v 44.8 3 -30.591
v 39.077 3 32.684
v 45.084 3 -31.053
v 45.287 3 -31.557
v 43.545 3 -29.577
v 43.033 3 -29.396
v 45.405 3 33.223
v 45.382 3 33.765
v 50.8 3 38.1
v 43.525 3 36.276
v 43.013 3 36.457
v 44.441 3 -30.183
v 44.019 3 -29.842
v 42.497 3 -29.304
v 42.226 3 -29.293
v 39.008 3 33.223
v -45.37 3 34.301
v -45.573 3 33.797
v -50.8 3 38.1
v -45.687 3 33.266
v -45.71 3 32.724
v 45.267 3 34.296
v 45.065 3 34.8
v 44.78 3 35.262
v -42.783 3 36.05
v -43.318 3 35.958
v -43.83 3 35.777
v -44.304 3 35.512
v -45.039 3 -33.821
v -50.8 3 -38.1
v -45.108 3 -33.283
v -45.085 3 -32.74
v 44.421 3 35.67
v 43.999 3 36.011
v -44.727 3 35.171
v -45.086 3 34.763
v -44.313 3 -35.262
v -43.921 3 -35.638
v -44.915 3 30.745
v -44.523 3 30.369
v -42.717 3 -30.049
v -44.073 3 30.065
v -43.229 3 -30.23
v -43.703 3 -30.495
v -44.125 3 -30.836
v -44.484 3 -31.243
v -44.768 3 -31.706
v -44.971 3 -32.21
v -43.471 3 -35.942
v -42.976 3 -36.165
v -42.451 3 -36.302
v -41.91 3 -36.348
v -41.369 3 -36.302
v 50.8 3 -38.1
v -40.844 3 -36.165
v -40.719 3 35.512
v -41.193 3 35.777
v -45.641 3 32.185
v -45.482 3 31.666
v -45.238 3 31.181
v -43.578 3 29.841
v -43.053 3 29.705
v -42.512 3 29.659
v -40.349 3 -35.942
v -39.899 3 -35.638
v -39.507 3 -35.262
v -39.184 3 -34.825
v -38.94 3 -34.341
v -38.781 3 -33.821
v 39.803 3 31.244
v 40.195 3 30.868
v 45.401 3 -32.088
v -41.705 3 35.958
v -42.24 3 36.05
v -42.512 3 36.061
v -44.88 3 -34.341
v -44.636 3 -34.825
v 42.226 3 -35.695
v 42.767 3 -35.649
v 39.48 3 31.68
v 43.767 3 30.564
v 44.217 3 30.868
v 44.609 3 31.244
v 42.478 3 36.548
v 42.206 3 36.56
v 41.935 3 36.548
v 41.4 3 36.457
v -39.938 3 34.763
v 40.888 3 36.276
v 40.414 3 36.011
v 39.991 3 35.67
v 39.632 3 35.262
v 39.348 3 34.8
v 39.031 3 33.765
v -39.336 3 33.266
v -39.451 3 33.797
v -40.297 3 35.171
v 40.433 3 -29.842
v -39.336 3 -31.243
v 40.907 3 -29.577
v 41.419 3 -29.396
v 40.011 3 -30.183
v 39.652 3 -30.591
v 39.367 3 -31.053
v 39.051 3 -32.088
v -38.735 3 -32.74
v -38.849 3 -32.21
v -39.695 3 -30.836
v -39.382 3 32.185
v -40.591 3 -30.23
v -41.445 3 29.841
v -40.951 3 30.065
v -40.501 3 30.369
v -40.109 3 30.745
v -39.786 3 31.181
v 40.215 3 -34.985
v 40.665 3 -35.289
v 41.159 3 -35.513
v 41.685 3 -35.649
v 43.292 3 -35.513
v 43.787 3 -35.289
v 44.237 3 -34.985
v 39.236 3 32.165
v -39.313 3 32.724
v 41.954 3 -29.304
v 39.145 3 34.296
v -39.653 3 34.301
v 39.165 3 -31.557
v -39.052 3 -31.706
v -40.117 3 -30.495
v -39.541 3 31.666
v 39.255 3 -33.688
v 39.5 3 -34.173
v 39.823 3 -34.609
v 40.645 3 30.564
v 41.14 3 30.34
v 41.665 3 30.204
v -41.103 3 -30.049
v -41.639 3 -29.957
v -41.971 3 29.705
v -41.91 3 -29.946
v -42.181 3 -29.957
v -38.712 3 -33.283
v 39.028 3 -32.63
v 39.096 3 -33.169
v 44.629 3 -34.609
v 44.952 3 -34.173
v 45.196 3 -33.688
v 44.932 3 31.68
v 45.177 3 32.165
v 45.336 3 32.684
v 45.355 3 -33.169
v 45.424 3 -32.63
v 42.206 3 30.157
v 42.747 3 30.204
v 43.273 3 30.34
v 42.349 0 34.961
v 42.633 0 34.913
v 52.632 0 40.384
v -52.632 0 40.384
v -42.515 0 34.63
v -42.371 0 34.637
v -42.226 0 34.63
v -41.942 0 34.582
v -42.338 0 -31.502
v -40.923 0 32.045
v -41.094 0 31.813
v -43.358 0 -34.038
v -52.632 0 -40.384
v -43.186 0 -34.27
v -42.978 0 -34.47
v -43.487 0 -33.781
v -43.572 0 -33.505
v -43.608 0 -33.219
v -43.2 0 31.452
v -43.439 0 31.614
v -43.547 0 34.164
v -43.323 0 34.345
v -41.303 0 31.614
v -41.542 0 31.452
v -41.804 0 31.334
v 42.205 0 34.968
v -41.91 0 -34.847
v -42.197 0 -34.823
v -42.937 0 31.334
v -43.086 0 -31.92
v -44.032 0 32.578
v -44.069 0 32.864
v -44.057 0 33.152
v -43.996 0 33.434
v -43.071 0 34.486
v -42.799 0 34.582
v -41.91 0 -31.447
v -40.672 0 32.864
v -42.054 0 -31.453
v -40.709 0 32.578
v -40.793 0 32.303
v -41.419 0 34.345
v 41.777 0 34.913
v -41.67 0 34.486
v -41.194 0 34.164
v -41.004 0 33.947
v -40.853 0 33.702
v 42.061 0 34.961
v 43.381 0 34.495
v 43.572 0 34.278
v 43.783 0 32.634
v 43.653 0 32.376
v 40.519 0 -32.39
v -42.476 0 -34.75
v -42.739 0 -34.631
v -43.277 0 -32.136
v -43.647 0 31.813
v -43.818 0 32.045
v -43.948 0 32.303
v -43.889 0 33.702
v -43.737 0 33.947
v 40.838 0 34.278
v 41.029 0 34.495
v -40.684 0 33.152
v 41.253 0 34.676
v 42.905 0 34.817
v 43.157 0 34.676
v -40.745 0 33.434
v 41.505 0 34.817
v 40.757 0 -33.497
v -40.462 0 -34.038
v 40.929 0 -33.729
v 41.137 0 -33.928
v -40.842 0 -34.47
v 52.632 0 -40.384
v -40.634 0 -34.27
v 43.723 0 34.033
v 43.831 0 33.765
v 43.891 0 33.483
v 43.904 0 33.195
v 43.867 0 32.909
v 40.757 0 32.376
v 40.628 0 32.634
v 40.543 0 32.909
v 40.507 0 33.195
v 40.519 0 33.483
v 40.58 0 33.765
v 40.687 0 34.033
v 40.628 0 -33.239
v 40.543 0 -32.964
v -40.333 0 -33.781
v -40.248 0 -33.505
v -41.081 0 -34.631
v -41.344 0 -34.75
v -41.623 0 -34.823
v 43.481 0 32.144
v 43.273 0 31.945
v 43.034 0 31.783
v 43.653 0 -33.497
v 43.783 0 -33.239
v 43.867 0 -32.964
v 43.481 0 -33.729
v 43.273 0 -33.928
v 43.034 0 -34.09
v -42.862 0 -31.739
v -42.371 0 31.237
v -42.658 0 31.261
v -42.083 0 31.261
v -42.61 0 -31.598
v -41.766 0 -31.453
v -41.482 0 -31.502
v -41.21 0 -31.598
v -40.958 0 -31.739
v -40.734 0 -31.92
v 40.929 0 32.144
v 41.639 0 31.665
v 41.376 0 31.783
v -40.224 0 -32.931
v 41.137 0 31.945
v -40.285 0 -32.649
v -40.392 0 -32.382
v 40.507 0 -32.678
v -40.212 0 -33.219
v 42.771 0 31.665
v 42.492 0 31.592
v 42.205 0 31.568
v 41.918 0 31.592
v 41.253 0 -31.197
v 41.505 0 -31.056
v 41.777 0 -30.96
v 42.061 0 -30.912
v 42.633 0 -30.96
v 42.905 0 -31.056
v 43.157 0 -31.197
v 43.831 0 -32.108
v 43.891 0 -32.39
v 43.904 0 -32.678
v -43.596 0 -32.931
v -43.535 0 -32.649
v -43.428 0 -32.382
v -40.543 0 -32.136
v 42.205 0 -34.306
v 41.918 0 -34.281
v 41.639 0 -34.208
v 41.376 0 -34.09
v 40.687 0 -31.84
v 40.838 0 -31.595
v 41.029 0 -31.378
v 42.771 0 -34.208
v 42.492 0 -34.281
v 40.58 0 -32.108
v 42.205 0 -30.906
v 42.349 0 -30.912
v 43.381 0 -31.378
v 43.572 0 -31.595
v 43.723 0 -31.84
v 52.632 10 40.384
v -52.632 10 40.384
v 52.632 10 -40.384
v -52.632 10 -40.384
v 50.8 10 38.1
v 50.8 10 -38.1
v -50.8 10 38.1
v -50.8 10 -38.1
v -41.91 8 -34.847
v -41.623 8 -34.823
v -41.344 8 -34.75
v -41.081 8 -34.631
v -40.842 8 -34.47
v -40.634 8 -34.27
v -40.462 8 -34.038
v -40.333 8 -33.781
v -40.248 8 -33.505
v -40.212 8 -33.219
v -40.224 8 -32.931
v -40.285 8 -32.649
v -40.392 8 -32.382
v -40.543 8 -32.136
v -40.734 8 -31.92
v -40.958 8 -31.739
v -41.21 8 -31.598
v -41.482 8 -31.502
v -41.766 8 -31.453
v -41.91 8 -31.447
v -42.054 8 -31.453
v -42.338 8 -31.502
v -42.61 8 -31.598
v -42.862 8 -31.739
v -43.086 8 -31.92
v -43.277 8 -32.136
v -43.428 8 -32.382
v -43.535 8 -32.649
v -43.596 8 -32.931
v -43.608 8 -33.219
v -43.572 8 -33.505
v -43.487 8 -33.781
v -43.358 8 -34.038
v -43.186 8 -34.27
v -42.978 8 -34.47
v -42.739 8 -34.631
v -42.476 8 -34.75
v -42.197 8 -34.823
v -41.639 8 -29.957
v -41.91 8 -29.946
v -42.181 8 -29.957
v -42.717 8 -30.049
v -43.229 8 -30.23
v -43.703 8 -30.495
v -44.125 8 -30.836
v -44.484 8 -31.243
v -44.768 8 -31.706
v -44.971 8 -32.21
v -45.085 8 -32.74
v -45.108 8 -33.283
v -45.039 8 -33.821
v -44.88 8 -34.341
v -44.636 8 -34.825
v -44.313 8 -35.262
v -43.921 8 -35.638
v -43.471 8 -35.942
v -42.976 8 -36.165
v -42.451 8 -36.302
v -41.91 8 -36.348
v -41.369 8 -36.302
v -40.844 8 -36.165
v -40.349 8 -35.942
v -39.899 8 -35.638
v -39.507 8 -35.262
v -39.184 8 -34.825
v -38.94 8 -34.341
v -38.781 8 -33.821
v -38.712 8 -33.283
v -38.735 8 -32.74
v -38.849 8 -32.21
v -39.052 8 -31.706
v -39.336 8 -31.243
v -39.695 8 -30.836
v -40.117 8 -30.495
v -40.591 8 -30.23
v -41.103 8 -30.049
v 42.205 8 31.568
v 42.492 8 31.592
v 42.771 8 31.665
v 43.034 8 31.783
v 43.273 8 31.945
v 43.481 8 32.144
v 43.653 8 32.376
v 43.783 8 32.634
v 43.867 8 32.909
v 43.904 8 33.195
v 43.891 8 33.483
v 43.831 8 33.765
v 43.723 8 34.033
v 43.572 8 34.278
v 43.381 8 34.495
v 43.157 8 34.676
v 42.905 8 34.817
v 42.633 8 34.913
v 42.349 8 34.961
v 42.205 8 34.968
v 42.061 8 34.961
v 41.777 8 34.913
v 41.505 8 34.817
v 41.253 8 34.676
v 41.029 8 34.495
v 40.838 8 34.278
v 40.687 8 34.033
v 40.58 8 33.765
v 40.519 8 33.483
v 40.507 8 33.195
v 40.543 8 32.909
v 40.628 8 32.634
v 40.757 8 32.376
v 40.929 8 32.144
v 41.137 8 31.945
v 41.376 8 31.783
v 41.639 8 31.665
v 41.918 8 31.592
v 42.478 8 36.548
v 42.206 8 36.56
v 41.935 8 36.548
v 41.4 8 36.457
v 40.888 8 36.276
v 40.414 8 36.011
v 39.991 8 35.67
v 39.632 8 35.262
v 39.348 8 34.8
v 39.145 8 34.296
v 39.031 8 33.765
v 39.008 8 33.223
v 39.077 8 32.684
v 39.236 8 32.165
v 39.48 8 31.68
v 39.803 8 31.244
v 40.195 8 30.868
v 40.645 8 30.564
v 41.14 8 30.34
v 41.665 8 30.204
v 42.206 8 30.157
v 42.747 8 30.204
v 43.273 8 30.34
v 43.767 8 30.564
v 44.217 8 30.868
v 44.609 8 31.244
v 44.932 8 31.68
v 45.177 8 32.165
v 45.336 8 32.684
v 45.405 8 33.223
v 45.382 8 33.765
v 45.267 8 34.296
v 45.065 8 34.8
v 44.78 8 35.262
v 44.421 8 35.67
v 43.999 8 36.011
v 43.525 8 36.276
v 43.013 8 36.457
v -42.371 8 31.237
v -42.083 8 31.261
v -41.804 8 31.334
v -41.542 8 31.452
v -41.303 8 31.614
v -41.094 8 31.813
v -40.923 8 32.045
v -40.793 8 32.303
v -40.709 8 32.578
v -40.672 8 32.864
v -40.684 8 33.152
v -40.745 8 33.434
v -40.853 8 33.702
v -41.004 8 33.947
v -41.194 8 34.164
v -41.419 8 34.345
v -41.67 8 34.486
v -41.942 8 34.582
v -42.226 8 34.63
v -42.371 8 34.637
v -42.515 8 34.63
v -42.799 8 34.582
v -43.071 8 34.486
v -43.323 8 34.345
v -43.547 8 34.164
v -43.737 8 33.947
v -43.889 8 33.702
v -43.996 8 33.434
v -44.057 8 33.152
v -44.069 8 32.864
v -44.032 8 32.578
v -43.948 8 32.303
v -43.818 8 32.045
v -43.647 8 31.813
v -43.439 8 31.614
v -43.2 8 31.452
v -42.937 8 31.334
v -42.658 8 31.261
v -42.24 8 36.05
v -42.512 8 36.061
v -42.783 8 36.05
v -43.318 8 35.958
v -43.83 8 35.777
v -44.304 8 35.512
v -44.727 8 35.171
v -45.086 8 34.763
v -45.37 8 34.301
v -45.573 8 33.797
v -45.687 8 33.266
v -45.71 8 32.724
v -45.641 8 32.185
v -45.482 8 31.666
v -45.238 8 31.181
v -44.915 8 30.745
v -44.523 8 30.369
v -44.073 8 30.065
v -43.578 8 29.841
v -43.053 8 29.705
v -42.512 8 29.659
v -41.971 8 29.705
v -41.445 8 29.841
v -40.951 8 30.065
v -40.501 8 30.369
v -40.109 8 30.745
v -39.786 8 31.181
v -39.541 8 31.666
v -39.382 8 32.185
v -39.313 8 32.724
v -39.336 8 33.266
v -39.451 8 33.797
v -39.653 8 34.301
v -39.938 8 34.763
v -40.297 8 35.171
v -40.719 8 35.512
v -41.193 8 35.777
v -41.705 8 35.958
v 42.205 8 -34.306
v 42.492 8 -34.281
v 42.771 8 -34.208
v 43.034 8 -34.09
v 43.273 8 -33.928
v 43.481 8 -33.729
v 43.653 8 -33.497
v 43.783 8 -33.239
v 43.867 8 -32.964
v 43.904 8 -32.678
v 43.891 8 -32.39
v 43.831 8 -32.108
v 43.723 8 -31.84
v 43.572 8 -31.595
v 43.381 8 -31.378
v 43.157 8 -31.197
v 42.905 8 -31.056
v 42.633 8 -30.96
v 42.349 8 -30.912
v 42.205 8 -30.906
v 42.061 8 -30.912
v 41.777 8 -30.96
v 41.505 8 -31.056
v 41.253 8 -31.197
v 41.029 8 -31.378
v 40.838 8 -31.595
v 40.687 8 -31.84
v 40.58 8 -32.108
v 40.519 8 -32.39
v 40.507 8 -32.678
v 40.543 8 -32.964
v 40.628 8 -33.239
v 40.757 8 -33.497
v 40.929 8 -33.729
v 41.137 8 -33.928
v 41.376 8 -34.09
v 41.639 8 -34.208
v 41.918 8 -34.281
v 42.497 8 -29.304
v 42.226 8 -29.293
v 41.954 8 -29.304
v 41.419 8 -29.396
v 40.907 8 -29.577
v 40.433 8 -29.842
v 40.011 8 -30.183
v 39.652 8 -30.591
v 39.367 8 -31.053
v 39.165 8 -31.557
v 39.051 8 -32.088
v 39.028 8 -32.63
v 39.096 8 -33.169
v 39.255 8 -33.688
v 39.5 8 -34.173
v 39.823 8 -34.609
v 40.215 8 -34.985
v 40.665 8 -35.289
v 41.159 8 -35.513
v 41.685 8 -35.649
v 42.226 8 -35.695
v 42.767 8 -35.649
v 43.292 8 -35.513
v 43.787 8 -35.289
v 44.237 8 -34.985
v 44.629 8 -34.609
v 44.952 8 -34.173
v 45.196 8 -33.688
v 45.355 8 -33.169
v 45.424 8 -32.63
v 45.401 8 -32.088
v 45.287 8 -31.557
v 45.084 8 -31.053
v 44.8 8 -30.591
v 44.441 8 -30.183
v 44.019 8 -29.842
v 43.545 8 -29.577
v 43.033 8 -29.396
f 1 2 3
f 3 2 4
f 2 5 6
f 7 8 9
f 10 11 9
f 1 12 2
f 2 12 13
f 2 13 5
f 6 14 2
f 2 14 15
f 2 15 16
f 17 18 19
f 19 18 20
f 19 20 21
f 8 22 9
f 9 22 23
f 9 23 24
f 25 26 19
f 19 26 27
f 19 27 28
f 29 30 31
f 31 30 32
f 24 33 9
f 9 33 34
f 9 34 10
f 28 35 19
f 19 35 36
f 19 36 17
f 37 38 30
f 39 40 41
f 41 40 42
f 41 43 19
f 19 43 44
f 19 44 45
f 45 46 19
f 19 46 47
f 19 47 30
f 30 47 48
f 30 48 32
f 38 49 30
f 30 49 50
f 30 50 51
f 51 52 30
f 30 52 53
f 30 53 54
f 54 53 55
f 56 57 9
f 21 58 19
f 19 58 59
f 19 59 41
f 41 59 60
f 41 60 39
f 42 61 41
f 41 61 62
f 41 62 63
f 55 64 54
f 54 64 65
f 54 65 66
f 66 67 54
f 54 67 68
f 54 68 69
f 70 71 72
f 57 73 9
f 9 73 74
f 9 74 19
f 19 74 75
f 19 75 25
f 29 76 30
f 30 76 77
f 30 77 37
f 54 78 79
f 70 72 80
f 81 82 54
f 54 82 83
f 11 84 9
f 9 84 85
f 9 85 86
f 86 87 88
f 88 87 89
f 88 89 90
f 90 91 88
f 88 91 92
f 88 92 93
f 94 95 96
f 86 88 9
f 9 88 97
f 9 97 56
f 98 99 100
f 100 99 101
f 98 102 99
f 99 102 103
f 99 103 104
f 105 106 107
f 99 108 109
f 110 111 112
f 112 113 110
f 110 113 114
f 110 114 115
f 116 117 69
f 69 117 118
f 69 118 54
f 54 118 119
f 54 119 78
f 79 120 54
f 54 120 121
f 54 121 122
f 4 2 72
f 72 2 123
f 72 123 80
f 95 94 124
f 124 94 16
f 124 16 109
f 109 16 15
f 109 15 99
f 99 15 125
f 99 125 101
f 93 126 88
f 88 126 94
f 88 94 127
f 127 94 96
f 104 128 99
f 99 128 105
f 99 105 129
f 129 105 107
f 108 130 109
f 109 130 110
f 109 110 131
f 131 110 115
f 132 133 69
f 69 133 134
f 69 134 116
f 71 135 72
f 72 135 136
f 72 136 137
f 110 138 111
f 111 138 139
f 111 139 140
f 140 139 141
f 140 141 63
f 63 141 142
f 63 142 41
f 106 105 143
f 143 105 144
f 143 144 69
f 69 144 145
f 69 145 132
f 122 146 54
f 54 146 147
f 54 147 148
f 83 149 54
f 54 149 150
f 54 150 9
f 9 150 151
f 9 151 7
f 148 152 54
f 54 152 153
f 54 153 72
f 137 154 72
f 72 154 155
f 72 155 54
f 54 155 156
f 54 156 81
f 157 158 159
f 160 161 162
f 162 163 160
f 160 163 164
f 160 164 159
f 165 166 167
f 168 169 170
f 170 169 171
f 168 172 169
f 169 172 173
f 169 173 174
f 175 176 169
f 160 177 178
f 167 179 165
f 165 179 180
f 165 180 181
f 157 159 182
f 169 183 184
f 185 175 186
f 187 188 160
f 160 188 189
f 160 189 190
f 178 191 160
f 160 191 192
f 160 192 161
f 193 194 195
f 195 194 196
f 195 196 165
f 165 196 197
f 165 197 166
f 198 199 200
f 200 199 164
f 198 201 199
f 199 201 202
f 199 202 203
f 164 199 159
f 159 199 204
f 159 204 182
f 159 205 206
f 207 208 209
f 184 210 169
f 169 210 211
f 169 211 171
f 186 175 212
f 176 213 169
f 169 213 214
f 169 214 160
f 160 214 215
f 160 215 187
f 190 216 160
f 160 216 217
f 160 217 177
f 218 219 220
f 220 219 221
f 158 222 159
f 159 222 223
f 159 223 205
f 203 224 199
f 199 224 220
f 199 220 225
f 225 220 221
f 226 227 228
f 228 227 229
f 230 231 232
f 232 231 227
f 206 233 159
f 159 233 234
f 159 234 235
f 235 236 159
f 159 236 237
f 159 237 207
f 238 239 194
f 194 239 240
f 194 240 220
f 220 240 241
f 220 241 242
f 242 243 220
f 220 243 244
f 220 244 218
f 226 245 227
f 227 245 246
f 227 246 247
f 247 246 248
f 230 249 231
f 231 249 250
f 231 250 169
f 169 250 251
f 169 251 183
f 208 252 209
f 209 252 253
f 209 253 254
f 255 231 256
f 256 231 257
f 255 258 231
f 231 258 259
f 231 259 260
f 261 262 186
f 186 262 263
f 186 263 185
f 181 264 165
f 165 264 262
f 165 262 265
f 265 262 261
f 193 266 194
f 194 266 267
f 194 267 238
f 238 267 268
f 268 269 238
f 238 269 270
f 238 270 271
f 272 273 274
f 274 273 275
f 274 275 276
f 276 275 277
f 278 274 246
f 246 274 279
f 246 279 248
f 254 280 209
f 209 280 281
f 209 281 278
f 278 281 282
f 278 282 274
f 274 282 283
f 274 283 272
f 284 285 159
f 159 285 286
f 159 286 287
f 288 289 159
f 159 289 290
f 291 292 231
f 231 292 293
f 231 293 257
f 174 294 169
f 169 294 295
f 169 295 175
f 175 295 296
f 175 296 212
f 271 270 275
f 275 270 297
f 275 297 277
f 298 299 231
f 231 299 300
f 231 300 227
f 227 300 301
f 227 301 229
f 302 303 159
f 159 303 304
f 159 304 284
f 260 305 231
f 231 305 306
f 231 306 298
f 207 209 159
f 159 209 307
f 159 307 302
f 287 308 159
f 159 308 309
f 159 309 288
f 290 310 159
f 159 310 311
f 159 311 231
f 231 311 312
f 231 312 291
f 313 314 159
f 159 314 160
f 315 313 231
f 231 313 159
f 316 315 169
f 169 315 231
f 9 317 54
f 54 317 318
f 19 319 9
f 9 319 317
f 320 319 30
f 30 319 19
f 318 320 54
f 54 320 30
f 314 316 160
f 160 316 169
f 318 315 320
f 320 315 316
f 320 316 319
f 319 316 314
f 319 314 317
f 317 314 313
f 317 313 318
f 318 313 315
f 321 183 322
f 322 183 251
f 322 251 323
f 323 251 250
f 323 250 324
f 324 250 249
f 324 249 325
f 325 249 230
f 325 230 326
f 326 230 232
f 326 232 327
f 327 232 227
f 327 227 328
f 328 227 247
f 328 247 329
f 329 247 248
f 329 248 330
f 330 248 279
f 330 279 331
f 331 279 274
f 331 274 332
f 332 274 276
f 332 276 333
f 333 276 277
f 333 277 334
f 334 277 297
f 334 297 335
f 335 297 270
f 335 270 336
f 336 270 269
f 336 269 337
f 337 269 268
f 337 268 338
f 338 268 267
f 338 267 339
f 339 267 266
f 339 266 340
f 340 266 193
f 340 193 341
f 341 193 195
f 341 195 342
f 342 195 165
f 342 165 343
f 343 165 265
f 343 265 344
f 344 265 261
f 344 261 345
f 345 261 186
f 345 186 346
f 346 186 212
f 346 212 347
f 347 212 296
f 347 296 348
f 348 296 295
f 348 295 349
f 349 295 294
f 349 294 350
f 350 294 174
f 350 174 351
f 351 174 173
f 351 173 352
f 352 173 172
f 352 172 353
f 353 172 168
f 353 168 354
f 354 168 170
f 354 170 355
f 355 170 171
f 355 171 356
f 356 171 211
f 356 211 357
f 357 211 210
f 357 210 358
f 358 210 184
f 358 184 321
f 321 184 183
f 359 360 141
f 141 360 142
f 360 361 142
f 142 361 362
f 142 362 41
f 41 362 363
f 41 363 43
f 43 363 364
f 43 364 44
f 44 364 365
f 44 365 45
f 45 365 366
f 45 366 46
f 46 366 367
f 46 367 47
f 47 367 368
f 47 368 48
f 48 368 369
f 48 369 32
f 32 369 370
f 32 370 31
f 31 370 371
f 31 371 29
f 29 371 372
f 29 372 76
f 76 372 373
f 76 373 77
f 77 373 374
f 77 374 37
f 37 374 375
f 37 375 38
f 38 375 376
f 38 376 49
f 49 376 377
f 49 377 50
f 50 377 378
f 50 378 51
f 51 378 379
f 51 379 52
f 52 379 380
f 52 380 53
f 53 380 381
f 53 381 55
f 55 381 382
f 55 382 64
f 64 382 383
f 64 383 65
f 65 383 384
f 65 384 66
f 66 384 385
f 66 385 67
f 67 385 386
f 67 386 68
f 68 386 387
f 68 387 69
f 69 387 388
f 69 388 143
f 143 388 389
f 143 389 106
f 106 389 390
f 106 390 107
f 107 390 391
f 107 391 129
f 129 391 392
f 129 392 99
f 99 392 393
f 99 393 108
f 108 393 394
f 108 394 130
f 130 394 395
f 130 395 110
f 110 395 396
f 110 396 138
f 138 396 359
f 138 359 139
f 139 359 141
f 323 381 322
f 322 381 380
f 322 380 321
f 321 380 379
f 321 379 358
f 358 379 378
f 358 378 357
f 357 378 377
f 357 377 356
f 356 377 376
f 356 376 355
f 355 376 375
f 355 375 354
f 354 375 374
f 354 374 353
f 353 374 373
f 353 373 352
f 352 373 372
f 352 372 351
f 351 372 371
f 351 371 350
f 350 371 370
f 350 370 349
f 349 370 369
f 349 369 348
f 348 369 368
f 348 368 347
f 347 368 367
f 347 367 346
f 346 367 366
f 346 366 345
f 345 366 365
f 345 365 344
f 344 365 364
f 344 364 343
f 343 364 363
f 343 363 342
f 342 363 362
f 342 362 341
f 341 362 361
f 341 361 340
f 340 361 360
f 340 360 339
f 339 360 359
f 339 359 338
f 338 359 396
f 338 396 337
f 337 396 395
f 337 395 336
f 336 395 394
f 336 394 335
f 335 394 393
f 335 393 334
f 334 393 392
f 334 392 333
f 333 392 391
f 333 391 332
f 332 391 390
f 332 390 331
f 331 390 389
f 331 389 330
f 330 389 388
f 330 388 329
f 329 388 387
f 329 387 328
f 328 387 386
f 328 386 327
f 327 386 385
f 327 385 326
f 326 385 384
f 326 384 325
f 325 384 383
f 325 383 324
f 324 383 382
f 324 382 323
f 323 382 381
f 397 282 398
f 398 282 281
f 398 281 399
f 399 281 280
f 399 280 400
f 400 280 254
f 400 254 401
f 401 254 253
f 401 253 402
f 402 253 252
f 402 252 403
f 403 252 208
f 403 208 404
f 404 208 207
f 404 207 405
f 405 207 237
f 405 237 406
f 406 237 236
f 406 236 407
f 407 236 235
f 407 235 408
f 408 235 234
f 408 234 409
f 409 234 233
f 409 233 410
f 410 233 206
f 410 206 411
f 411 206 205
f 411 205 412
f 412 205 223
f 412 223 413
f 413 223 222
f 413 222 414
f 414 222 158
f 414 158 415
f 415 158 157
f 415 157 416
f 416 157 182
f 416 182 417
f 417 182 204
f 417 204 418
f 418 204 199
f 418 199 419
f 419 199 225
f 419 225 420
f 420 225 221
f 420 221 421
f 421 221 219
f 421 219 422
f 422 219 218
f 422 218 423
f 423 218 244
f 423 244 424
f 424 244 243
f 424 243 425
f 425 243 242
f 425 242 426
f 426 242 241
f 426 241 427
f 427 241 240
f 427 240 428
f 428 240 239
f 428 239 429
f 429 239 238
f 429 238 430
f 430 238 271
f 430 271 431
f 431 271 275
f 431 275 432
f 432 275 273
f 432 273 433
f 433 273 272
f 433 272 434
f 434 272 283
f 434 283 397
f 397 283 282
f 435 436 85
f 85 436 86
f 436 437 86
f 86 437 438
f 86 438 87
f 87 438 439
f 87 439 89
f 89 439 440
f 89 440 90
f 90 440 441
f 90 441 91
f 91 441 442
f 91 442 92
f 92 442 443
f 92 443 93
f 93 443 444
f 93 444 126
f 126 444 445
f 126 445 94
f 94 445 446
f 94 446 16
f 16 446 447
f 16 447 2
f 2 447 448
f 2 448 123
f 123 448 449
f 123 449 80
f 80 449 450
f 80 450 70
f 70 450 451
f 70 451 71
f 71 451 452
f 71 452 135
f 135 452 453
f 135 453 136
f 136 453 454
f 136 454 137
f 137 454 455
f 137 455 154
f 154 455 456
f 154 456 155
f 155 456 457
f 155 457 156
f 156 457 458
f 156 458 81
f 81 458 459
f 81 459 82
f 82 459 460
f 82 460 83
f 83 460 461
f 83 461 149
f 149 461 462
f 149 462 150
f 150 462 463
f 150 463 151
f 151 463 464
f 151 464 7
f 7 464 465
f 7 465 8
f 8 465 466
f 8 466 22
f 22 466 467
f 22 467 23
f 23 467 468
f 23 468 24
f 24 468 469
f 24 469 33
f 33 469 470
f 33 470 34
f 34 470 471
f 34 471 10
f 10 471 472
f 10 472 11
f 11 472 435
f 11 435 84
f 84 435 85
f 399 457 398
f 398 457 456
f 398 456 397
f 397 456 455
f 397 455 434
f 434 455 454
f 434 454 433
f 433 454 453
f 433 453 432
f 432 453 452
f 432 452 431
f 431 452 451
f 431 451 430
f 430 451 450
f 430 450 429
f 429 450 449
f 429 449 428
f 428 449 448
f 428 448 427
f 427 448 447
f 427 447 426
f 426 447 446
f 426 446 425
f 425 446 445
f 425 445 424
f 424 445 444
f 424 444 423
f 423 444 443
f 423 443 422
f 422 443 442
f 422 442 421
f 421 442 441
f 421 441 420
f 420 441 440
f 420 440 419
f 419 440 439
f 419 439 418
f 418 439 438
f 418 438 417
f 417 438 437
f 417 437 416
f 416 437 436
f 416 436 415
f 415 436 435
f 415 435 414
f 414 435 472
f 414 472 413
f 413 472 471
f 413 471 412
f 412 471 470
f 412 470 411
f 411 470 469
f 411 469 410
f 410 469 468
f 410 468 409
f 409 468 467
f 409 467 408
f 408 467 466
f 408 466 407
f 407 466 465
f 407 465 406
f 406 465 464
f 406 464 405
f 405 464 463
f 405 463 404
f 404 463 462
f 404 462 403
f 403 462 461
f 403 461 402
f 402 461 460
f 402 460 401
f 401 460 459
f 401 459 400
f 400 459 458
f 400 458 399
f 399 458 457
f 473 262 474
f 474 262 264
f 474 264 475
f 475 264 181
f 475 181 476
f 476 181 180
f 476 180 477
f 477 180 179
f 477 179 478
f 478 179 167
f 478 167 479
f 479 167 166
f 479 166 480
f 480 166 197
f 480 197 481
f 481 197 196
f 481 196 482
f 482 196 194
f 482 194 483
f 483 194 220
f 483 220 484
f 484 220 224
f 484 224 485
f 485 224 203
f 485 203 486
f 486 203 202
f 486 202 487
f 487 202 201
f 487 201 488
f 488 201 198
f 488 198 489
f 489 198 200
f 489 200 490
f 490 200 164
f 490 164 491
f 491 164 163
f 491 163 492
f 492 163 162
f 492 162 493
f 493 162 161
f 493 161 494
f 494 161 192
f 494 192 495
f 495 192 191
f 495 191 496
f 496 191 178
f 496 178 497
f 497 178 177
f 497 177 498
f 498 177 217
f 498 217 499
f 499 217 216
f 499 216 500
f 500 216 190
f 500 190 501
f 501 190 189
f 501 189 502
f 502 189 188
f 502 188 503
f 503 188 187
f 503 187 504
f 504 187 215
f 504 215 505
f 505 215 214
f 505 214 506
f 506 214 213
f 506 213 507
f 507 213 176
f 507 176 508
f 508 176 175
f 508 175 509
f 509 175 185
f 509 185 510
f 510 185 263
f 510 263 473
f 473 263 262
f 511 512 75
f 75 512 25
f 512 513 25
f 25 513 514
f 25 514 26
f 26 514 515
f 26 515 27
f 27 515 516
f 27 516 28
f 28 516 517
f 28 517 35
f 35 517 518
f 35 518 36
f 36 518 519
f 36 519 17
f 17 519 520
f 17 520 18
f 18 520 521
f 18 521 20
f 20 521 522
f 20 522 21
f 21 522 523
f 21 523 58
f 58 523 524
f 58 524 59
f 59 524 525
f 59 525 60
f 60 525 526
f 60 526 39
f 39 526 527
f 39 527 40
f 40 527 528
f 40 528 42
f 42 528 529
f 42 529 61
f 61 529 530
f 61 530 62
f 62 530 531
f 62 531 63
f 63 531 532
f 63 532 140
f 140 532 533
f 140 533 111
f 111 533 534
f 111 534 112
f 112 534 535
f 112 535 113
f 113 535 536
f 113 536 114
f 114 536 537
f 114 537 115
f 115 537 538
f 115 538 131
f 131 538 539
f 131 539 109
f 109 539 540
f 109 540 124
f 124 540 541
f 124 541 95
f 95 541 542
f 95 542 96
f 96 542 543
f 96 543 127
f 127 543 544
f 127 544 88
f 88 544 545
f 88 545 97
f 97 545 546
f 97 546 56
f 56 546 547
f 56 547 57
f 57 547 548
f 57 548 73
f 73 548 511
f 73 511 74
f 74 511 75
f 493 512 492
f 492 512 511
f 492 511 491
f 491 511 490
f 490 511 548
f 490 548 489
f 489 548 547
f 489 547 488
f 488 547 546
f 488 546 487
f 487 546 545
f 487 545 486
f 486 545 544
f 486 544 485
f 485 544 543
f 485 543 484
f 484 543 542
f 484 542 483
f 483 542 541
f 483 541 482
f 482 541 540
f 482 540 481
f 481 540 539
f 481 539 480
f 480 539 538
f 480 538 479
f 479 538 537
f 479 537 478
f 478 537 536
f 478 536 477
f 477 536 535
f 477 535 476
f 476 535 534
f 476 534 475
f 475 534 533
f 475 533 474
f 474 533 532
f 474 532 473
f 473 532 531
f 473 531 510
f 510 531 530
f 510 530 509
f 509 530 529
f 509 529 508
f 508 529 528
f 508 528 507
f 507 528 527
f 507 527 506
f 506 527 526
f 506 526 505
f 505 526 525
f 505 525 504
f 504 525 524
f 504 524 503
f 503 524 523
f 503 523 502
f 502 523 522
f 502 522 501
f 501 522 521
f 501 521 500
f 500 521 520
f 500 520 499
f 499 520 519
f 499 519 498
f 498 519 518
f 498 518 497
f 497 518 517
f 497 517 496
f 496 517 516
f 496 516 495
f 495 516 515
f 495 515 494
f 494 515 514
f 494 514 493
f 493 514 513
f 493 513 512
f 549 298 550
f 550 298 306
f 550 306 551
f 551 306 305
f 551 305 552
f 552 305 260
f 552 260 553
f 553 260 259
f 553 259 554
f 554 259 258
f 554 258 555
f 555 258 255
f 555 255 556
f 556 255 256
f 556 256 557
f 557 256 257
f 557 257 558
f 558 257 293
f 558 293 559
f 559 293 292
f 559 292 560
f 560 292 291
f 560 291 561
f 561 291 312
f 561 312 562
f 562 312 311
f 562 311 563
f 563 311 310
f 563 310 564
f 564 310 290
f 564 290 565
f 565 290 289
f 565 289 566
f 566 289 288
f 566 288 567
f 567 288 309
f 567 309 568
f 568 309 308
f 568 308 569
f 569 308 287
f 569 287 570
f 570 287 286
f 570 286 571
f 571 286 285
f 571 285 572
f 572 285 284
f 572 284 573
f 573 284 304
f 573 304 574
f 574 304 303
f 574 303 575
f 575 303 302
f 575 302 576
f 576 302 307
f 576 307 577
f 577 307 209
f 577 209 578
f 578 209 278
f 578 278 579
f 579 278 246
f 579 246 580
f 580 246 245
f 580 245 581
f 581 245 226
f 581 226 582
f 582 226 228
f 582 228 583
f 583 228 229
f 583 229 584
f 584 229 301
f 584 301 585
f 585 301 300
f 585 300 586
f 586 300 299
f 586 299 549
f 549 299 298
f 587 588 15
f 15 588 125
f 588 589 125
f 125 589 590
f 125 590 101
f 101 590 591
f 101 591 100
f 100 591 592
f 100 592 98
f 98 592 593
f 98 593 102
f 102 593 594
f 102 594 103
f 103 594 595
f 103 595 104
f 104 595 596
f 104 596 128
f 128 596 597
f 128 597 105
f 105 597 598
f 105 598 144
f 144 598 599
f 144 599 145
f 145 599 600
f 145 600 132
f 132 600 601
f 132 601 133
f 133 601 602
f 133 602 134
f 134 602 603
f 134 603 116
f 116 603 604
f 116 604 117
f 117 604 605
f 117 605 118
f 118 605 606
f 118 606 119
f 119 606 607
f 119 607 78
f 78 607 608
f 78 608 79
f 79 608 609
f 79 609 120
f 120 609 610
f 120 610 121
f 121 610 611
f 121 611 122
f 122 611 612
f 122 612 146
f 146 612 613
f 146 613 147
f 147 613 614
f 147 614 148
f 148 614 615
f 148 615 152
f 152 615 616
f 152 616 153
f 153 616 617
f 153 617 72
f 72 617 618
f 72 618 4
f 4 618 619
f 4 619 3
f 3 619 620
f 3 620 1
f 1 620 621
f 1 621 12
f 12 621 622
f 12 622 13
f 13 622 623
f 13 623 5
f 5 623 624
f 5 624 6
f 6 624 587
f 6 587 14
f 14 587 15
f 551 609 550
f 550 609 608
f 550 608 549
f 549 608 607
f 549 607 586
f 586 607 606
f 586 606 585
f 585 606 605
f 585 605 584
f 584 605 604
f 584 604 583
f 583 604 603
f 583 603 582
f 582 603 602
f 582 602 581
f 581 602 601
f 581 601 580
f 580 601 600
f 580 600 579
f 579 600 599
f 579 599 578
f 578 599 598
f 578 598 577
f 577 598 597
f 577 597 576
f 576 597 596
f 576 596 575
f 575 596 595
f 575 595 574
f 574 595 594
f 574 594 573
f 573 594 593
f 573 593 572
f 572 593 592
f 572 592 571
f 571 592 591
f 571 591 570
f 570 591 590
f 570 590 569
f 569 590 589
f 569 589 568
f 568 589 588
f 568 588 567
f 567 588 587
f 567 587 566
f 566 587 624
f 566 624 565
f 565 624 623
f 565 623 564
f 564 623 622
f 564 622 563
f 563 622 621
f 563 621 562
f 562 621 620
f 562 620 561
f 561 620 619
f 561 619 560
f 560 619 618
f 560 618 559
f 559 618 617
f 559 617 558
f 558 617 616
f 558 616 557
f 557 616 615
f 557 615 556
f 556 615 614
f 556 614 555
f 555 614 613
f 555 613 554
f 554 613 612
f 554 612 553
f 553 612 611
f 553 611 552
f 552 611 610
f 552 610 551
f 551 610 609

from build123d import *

# Parameters (mm, degrees)
SKETCH1_W           = 101.6
SKETCH1_H           = 76.2
SKETCH1_R           = 3.201261119
BOSS_EXTRUDE4_DEPTH = 3
SKETCH1_8_W         = 105.264465986
SKETCH1_8_H         = 80.768961322
SKETCH1_8_W_2       = 101.6
SKETCH1_8_H_2       = 76.2
BOSS_EXTRUDE6_DEPTH = 10
SKETCH1_10_R        = 3.201261119
SKETCH1_10_R_2      = 1.7
BOSS_EXTRUDE7_DEPTH = 8


with BuildPart() as part:
    # Sketch1 → Boss-Extrude4 (new body)
    with BuildSketch(Plane(origin=(0, 0, 0), x_dir=(1, 0, 0), z_dir=(0, 1, 0))):
        Rectangle(SKETCH1_W, SKETCH1_H)
        with Locations((-42.51175292, -32.859842277)):
            Circle(SKETCH1_R, mode=Mode.SUBTRACT)
        with Locations((42.20618594, -33.358721943)):
            Circle(SKETCH1_R, mode=Mode.SUBTRACT)
        with Locations((-41.91, 33.147)):
            Circle(SKETCH1_R, mode=Mode.SUBTRACT)
        with Locations((42.225895984, 32.494174618)):
            Circle(SKETCH1_R, mode=Mode.SUBTRACT)
    extrude(amount=BOSS_EXTRUDE4_DEPTH)

    # Sketch1<8> → Boss-Extrude6 (add)
    with BuildSketch(Plane(origin=(0, 0, 0), x_dir=(1, 0, 0), z_dir=(0, 1, 0))):
        Rectangle(SKETCH1_8_W, SKETCH1_8_H)
        Rectangle(SKETCH1_8_W_2, SKETCH1_8_H_2, mode=Mode.SUBTRACT)
    extrude(amount=BOSS_EXTRUDE6_DEPTH)

    # Sketch1<10> → Boss-Extrude7 (add)
    # profile 1 of 4: a face of its own
    with BuildSketch(Plane(origin=(0, 0, 0), x_dir=(1, 0, 0), z_dir=(0, 1, 0))):
        with Locations((-41.91, 33.147)):
            Circle(SKETCH1_10_R)
        with Locations((-41.91, 33.147)):
            Circle(SKETCH1_10_R_2, mode=Mode.SUBTRACT)
    # profile 2 of 4: a face of its own
    with BuildSketch(Plane(origin=(0, 0, 0), x_dir=(1, 0, 0), z_dir=(0, 1, 0))):
        with Locations((42.225895984, 32.494174618)):
            Circle(SKETCH1_10_R)
        with Locations((42.205092494, 32.605502829)):
            Circle(SKETCH1_10_R_2, mode=Mode.SUBTRACT)
    # profile 3 of 4: a face of its own
    with BuildSketch(Plane(origin=(0, 0, 0), x_dir=(1, 0, 0), z_dir=(0, 1, 0))):
        with Locations((-42.51175292, -32.859842277)):
            Circle(SKETCH1_10_R)
        with Locations((-42.370602661, -32.936523162)):
            Circle(SKETCH1_10_R_2, mode=Mode.SUBTRACT)
    # profile 4 of 4: a face of its own
    with BuildSketch(Plane(origin=(0, 0, 0), x_dir=(1, 0, 0), z_dir=(0, 1, 0))):
        with Locations((42.20618594, -33.358721943)):
            Circle(SKETCH1_10_R)
        with Locations((42.205092494, -33.267543495)):
            Circle(SKETCH1_10_R_2, mode=Mode.SUBTRACT)
    extrude(amount=BOSS_EXTRUDE7_DEPTH)


solid = part.part
